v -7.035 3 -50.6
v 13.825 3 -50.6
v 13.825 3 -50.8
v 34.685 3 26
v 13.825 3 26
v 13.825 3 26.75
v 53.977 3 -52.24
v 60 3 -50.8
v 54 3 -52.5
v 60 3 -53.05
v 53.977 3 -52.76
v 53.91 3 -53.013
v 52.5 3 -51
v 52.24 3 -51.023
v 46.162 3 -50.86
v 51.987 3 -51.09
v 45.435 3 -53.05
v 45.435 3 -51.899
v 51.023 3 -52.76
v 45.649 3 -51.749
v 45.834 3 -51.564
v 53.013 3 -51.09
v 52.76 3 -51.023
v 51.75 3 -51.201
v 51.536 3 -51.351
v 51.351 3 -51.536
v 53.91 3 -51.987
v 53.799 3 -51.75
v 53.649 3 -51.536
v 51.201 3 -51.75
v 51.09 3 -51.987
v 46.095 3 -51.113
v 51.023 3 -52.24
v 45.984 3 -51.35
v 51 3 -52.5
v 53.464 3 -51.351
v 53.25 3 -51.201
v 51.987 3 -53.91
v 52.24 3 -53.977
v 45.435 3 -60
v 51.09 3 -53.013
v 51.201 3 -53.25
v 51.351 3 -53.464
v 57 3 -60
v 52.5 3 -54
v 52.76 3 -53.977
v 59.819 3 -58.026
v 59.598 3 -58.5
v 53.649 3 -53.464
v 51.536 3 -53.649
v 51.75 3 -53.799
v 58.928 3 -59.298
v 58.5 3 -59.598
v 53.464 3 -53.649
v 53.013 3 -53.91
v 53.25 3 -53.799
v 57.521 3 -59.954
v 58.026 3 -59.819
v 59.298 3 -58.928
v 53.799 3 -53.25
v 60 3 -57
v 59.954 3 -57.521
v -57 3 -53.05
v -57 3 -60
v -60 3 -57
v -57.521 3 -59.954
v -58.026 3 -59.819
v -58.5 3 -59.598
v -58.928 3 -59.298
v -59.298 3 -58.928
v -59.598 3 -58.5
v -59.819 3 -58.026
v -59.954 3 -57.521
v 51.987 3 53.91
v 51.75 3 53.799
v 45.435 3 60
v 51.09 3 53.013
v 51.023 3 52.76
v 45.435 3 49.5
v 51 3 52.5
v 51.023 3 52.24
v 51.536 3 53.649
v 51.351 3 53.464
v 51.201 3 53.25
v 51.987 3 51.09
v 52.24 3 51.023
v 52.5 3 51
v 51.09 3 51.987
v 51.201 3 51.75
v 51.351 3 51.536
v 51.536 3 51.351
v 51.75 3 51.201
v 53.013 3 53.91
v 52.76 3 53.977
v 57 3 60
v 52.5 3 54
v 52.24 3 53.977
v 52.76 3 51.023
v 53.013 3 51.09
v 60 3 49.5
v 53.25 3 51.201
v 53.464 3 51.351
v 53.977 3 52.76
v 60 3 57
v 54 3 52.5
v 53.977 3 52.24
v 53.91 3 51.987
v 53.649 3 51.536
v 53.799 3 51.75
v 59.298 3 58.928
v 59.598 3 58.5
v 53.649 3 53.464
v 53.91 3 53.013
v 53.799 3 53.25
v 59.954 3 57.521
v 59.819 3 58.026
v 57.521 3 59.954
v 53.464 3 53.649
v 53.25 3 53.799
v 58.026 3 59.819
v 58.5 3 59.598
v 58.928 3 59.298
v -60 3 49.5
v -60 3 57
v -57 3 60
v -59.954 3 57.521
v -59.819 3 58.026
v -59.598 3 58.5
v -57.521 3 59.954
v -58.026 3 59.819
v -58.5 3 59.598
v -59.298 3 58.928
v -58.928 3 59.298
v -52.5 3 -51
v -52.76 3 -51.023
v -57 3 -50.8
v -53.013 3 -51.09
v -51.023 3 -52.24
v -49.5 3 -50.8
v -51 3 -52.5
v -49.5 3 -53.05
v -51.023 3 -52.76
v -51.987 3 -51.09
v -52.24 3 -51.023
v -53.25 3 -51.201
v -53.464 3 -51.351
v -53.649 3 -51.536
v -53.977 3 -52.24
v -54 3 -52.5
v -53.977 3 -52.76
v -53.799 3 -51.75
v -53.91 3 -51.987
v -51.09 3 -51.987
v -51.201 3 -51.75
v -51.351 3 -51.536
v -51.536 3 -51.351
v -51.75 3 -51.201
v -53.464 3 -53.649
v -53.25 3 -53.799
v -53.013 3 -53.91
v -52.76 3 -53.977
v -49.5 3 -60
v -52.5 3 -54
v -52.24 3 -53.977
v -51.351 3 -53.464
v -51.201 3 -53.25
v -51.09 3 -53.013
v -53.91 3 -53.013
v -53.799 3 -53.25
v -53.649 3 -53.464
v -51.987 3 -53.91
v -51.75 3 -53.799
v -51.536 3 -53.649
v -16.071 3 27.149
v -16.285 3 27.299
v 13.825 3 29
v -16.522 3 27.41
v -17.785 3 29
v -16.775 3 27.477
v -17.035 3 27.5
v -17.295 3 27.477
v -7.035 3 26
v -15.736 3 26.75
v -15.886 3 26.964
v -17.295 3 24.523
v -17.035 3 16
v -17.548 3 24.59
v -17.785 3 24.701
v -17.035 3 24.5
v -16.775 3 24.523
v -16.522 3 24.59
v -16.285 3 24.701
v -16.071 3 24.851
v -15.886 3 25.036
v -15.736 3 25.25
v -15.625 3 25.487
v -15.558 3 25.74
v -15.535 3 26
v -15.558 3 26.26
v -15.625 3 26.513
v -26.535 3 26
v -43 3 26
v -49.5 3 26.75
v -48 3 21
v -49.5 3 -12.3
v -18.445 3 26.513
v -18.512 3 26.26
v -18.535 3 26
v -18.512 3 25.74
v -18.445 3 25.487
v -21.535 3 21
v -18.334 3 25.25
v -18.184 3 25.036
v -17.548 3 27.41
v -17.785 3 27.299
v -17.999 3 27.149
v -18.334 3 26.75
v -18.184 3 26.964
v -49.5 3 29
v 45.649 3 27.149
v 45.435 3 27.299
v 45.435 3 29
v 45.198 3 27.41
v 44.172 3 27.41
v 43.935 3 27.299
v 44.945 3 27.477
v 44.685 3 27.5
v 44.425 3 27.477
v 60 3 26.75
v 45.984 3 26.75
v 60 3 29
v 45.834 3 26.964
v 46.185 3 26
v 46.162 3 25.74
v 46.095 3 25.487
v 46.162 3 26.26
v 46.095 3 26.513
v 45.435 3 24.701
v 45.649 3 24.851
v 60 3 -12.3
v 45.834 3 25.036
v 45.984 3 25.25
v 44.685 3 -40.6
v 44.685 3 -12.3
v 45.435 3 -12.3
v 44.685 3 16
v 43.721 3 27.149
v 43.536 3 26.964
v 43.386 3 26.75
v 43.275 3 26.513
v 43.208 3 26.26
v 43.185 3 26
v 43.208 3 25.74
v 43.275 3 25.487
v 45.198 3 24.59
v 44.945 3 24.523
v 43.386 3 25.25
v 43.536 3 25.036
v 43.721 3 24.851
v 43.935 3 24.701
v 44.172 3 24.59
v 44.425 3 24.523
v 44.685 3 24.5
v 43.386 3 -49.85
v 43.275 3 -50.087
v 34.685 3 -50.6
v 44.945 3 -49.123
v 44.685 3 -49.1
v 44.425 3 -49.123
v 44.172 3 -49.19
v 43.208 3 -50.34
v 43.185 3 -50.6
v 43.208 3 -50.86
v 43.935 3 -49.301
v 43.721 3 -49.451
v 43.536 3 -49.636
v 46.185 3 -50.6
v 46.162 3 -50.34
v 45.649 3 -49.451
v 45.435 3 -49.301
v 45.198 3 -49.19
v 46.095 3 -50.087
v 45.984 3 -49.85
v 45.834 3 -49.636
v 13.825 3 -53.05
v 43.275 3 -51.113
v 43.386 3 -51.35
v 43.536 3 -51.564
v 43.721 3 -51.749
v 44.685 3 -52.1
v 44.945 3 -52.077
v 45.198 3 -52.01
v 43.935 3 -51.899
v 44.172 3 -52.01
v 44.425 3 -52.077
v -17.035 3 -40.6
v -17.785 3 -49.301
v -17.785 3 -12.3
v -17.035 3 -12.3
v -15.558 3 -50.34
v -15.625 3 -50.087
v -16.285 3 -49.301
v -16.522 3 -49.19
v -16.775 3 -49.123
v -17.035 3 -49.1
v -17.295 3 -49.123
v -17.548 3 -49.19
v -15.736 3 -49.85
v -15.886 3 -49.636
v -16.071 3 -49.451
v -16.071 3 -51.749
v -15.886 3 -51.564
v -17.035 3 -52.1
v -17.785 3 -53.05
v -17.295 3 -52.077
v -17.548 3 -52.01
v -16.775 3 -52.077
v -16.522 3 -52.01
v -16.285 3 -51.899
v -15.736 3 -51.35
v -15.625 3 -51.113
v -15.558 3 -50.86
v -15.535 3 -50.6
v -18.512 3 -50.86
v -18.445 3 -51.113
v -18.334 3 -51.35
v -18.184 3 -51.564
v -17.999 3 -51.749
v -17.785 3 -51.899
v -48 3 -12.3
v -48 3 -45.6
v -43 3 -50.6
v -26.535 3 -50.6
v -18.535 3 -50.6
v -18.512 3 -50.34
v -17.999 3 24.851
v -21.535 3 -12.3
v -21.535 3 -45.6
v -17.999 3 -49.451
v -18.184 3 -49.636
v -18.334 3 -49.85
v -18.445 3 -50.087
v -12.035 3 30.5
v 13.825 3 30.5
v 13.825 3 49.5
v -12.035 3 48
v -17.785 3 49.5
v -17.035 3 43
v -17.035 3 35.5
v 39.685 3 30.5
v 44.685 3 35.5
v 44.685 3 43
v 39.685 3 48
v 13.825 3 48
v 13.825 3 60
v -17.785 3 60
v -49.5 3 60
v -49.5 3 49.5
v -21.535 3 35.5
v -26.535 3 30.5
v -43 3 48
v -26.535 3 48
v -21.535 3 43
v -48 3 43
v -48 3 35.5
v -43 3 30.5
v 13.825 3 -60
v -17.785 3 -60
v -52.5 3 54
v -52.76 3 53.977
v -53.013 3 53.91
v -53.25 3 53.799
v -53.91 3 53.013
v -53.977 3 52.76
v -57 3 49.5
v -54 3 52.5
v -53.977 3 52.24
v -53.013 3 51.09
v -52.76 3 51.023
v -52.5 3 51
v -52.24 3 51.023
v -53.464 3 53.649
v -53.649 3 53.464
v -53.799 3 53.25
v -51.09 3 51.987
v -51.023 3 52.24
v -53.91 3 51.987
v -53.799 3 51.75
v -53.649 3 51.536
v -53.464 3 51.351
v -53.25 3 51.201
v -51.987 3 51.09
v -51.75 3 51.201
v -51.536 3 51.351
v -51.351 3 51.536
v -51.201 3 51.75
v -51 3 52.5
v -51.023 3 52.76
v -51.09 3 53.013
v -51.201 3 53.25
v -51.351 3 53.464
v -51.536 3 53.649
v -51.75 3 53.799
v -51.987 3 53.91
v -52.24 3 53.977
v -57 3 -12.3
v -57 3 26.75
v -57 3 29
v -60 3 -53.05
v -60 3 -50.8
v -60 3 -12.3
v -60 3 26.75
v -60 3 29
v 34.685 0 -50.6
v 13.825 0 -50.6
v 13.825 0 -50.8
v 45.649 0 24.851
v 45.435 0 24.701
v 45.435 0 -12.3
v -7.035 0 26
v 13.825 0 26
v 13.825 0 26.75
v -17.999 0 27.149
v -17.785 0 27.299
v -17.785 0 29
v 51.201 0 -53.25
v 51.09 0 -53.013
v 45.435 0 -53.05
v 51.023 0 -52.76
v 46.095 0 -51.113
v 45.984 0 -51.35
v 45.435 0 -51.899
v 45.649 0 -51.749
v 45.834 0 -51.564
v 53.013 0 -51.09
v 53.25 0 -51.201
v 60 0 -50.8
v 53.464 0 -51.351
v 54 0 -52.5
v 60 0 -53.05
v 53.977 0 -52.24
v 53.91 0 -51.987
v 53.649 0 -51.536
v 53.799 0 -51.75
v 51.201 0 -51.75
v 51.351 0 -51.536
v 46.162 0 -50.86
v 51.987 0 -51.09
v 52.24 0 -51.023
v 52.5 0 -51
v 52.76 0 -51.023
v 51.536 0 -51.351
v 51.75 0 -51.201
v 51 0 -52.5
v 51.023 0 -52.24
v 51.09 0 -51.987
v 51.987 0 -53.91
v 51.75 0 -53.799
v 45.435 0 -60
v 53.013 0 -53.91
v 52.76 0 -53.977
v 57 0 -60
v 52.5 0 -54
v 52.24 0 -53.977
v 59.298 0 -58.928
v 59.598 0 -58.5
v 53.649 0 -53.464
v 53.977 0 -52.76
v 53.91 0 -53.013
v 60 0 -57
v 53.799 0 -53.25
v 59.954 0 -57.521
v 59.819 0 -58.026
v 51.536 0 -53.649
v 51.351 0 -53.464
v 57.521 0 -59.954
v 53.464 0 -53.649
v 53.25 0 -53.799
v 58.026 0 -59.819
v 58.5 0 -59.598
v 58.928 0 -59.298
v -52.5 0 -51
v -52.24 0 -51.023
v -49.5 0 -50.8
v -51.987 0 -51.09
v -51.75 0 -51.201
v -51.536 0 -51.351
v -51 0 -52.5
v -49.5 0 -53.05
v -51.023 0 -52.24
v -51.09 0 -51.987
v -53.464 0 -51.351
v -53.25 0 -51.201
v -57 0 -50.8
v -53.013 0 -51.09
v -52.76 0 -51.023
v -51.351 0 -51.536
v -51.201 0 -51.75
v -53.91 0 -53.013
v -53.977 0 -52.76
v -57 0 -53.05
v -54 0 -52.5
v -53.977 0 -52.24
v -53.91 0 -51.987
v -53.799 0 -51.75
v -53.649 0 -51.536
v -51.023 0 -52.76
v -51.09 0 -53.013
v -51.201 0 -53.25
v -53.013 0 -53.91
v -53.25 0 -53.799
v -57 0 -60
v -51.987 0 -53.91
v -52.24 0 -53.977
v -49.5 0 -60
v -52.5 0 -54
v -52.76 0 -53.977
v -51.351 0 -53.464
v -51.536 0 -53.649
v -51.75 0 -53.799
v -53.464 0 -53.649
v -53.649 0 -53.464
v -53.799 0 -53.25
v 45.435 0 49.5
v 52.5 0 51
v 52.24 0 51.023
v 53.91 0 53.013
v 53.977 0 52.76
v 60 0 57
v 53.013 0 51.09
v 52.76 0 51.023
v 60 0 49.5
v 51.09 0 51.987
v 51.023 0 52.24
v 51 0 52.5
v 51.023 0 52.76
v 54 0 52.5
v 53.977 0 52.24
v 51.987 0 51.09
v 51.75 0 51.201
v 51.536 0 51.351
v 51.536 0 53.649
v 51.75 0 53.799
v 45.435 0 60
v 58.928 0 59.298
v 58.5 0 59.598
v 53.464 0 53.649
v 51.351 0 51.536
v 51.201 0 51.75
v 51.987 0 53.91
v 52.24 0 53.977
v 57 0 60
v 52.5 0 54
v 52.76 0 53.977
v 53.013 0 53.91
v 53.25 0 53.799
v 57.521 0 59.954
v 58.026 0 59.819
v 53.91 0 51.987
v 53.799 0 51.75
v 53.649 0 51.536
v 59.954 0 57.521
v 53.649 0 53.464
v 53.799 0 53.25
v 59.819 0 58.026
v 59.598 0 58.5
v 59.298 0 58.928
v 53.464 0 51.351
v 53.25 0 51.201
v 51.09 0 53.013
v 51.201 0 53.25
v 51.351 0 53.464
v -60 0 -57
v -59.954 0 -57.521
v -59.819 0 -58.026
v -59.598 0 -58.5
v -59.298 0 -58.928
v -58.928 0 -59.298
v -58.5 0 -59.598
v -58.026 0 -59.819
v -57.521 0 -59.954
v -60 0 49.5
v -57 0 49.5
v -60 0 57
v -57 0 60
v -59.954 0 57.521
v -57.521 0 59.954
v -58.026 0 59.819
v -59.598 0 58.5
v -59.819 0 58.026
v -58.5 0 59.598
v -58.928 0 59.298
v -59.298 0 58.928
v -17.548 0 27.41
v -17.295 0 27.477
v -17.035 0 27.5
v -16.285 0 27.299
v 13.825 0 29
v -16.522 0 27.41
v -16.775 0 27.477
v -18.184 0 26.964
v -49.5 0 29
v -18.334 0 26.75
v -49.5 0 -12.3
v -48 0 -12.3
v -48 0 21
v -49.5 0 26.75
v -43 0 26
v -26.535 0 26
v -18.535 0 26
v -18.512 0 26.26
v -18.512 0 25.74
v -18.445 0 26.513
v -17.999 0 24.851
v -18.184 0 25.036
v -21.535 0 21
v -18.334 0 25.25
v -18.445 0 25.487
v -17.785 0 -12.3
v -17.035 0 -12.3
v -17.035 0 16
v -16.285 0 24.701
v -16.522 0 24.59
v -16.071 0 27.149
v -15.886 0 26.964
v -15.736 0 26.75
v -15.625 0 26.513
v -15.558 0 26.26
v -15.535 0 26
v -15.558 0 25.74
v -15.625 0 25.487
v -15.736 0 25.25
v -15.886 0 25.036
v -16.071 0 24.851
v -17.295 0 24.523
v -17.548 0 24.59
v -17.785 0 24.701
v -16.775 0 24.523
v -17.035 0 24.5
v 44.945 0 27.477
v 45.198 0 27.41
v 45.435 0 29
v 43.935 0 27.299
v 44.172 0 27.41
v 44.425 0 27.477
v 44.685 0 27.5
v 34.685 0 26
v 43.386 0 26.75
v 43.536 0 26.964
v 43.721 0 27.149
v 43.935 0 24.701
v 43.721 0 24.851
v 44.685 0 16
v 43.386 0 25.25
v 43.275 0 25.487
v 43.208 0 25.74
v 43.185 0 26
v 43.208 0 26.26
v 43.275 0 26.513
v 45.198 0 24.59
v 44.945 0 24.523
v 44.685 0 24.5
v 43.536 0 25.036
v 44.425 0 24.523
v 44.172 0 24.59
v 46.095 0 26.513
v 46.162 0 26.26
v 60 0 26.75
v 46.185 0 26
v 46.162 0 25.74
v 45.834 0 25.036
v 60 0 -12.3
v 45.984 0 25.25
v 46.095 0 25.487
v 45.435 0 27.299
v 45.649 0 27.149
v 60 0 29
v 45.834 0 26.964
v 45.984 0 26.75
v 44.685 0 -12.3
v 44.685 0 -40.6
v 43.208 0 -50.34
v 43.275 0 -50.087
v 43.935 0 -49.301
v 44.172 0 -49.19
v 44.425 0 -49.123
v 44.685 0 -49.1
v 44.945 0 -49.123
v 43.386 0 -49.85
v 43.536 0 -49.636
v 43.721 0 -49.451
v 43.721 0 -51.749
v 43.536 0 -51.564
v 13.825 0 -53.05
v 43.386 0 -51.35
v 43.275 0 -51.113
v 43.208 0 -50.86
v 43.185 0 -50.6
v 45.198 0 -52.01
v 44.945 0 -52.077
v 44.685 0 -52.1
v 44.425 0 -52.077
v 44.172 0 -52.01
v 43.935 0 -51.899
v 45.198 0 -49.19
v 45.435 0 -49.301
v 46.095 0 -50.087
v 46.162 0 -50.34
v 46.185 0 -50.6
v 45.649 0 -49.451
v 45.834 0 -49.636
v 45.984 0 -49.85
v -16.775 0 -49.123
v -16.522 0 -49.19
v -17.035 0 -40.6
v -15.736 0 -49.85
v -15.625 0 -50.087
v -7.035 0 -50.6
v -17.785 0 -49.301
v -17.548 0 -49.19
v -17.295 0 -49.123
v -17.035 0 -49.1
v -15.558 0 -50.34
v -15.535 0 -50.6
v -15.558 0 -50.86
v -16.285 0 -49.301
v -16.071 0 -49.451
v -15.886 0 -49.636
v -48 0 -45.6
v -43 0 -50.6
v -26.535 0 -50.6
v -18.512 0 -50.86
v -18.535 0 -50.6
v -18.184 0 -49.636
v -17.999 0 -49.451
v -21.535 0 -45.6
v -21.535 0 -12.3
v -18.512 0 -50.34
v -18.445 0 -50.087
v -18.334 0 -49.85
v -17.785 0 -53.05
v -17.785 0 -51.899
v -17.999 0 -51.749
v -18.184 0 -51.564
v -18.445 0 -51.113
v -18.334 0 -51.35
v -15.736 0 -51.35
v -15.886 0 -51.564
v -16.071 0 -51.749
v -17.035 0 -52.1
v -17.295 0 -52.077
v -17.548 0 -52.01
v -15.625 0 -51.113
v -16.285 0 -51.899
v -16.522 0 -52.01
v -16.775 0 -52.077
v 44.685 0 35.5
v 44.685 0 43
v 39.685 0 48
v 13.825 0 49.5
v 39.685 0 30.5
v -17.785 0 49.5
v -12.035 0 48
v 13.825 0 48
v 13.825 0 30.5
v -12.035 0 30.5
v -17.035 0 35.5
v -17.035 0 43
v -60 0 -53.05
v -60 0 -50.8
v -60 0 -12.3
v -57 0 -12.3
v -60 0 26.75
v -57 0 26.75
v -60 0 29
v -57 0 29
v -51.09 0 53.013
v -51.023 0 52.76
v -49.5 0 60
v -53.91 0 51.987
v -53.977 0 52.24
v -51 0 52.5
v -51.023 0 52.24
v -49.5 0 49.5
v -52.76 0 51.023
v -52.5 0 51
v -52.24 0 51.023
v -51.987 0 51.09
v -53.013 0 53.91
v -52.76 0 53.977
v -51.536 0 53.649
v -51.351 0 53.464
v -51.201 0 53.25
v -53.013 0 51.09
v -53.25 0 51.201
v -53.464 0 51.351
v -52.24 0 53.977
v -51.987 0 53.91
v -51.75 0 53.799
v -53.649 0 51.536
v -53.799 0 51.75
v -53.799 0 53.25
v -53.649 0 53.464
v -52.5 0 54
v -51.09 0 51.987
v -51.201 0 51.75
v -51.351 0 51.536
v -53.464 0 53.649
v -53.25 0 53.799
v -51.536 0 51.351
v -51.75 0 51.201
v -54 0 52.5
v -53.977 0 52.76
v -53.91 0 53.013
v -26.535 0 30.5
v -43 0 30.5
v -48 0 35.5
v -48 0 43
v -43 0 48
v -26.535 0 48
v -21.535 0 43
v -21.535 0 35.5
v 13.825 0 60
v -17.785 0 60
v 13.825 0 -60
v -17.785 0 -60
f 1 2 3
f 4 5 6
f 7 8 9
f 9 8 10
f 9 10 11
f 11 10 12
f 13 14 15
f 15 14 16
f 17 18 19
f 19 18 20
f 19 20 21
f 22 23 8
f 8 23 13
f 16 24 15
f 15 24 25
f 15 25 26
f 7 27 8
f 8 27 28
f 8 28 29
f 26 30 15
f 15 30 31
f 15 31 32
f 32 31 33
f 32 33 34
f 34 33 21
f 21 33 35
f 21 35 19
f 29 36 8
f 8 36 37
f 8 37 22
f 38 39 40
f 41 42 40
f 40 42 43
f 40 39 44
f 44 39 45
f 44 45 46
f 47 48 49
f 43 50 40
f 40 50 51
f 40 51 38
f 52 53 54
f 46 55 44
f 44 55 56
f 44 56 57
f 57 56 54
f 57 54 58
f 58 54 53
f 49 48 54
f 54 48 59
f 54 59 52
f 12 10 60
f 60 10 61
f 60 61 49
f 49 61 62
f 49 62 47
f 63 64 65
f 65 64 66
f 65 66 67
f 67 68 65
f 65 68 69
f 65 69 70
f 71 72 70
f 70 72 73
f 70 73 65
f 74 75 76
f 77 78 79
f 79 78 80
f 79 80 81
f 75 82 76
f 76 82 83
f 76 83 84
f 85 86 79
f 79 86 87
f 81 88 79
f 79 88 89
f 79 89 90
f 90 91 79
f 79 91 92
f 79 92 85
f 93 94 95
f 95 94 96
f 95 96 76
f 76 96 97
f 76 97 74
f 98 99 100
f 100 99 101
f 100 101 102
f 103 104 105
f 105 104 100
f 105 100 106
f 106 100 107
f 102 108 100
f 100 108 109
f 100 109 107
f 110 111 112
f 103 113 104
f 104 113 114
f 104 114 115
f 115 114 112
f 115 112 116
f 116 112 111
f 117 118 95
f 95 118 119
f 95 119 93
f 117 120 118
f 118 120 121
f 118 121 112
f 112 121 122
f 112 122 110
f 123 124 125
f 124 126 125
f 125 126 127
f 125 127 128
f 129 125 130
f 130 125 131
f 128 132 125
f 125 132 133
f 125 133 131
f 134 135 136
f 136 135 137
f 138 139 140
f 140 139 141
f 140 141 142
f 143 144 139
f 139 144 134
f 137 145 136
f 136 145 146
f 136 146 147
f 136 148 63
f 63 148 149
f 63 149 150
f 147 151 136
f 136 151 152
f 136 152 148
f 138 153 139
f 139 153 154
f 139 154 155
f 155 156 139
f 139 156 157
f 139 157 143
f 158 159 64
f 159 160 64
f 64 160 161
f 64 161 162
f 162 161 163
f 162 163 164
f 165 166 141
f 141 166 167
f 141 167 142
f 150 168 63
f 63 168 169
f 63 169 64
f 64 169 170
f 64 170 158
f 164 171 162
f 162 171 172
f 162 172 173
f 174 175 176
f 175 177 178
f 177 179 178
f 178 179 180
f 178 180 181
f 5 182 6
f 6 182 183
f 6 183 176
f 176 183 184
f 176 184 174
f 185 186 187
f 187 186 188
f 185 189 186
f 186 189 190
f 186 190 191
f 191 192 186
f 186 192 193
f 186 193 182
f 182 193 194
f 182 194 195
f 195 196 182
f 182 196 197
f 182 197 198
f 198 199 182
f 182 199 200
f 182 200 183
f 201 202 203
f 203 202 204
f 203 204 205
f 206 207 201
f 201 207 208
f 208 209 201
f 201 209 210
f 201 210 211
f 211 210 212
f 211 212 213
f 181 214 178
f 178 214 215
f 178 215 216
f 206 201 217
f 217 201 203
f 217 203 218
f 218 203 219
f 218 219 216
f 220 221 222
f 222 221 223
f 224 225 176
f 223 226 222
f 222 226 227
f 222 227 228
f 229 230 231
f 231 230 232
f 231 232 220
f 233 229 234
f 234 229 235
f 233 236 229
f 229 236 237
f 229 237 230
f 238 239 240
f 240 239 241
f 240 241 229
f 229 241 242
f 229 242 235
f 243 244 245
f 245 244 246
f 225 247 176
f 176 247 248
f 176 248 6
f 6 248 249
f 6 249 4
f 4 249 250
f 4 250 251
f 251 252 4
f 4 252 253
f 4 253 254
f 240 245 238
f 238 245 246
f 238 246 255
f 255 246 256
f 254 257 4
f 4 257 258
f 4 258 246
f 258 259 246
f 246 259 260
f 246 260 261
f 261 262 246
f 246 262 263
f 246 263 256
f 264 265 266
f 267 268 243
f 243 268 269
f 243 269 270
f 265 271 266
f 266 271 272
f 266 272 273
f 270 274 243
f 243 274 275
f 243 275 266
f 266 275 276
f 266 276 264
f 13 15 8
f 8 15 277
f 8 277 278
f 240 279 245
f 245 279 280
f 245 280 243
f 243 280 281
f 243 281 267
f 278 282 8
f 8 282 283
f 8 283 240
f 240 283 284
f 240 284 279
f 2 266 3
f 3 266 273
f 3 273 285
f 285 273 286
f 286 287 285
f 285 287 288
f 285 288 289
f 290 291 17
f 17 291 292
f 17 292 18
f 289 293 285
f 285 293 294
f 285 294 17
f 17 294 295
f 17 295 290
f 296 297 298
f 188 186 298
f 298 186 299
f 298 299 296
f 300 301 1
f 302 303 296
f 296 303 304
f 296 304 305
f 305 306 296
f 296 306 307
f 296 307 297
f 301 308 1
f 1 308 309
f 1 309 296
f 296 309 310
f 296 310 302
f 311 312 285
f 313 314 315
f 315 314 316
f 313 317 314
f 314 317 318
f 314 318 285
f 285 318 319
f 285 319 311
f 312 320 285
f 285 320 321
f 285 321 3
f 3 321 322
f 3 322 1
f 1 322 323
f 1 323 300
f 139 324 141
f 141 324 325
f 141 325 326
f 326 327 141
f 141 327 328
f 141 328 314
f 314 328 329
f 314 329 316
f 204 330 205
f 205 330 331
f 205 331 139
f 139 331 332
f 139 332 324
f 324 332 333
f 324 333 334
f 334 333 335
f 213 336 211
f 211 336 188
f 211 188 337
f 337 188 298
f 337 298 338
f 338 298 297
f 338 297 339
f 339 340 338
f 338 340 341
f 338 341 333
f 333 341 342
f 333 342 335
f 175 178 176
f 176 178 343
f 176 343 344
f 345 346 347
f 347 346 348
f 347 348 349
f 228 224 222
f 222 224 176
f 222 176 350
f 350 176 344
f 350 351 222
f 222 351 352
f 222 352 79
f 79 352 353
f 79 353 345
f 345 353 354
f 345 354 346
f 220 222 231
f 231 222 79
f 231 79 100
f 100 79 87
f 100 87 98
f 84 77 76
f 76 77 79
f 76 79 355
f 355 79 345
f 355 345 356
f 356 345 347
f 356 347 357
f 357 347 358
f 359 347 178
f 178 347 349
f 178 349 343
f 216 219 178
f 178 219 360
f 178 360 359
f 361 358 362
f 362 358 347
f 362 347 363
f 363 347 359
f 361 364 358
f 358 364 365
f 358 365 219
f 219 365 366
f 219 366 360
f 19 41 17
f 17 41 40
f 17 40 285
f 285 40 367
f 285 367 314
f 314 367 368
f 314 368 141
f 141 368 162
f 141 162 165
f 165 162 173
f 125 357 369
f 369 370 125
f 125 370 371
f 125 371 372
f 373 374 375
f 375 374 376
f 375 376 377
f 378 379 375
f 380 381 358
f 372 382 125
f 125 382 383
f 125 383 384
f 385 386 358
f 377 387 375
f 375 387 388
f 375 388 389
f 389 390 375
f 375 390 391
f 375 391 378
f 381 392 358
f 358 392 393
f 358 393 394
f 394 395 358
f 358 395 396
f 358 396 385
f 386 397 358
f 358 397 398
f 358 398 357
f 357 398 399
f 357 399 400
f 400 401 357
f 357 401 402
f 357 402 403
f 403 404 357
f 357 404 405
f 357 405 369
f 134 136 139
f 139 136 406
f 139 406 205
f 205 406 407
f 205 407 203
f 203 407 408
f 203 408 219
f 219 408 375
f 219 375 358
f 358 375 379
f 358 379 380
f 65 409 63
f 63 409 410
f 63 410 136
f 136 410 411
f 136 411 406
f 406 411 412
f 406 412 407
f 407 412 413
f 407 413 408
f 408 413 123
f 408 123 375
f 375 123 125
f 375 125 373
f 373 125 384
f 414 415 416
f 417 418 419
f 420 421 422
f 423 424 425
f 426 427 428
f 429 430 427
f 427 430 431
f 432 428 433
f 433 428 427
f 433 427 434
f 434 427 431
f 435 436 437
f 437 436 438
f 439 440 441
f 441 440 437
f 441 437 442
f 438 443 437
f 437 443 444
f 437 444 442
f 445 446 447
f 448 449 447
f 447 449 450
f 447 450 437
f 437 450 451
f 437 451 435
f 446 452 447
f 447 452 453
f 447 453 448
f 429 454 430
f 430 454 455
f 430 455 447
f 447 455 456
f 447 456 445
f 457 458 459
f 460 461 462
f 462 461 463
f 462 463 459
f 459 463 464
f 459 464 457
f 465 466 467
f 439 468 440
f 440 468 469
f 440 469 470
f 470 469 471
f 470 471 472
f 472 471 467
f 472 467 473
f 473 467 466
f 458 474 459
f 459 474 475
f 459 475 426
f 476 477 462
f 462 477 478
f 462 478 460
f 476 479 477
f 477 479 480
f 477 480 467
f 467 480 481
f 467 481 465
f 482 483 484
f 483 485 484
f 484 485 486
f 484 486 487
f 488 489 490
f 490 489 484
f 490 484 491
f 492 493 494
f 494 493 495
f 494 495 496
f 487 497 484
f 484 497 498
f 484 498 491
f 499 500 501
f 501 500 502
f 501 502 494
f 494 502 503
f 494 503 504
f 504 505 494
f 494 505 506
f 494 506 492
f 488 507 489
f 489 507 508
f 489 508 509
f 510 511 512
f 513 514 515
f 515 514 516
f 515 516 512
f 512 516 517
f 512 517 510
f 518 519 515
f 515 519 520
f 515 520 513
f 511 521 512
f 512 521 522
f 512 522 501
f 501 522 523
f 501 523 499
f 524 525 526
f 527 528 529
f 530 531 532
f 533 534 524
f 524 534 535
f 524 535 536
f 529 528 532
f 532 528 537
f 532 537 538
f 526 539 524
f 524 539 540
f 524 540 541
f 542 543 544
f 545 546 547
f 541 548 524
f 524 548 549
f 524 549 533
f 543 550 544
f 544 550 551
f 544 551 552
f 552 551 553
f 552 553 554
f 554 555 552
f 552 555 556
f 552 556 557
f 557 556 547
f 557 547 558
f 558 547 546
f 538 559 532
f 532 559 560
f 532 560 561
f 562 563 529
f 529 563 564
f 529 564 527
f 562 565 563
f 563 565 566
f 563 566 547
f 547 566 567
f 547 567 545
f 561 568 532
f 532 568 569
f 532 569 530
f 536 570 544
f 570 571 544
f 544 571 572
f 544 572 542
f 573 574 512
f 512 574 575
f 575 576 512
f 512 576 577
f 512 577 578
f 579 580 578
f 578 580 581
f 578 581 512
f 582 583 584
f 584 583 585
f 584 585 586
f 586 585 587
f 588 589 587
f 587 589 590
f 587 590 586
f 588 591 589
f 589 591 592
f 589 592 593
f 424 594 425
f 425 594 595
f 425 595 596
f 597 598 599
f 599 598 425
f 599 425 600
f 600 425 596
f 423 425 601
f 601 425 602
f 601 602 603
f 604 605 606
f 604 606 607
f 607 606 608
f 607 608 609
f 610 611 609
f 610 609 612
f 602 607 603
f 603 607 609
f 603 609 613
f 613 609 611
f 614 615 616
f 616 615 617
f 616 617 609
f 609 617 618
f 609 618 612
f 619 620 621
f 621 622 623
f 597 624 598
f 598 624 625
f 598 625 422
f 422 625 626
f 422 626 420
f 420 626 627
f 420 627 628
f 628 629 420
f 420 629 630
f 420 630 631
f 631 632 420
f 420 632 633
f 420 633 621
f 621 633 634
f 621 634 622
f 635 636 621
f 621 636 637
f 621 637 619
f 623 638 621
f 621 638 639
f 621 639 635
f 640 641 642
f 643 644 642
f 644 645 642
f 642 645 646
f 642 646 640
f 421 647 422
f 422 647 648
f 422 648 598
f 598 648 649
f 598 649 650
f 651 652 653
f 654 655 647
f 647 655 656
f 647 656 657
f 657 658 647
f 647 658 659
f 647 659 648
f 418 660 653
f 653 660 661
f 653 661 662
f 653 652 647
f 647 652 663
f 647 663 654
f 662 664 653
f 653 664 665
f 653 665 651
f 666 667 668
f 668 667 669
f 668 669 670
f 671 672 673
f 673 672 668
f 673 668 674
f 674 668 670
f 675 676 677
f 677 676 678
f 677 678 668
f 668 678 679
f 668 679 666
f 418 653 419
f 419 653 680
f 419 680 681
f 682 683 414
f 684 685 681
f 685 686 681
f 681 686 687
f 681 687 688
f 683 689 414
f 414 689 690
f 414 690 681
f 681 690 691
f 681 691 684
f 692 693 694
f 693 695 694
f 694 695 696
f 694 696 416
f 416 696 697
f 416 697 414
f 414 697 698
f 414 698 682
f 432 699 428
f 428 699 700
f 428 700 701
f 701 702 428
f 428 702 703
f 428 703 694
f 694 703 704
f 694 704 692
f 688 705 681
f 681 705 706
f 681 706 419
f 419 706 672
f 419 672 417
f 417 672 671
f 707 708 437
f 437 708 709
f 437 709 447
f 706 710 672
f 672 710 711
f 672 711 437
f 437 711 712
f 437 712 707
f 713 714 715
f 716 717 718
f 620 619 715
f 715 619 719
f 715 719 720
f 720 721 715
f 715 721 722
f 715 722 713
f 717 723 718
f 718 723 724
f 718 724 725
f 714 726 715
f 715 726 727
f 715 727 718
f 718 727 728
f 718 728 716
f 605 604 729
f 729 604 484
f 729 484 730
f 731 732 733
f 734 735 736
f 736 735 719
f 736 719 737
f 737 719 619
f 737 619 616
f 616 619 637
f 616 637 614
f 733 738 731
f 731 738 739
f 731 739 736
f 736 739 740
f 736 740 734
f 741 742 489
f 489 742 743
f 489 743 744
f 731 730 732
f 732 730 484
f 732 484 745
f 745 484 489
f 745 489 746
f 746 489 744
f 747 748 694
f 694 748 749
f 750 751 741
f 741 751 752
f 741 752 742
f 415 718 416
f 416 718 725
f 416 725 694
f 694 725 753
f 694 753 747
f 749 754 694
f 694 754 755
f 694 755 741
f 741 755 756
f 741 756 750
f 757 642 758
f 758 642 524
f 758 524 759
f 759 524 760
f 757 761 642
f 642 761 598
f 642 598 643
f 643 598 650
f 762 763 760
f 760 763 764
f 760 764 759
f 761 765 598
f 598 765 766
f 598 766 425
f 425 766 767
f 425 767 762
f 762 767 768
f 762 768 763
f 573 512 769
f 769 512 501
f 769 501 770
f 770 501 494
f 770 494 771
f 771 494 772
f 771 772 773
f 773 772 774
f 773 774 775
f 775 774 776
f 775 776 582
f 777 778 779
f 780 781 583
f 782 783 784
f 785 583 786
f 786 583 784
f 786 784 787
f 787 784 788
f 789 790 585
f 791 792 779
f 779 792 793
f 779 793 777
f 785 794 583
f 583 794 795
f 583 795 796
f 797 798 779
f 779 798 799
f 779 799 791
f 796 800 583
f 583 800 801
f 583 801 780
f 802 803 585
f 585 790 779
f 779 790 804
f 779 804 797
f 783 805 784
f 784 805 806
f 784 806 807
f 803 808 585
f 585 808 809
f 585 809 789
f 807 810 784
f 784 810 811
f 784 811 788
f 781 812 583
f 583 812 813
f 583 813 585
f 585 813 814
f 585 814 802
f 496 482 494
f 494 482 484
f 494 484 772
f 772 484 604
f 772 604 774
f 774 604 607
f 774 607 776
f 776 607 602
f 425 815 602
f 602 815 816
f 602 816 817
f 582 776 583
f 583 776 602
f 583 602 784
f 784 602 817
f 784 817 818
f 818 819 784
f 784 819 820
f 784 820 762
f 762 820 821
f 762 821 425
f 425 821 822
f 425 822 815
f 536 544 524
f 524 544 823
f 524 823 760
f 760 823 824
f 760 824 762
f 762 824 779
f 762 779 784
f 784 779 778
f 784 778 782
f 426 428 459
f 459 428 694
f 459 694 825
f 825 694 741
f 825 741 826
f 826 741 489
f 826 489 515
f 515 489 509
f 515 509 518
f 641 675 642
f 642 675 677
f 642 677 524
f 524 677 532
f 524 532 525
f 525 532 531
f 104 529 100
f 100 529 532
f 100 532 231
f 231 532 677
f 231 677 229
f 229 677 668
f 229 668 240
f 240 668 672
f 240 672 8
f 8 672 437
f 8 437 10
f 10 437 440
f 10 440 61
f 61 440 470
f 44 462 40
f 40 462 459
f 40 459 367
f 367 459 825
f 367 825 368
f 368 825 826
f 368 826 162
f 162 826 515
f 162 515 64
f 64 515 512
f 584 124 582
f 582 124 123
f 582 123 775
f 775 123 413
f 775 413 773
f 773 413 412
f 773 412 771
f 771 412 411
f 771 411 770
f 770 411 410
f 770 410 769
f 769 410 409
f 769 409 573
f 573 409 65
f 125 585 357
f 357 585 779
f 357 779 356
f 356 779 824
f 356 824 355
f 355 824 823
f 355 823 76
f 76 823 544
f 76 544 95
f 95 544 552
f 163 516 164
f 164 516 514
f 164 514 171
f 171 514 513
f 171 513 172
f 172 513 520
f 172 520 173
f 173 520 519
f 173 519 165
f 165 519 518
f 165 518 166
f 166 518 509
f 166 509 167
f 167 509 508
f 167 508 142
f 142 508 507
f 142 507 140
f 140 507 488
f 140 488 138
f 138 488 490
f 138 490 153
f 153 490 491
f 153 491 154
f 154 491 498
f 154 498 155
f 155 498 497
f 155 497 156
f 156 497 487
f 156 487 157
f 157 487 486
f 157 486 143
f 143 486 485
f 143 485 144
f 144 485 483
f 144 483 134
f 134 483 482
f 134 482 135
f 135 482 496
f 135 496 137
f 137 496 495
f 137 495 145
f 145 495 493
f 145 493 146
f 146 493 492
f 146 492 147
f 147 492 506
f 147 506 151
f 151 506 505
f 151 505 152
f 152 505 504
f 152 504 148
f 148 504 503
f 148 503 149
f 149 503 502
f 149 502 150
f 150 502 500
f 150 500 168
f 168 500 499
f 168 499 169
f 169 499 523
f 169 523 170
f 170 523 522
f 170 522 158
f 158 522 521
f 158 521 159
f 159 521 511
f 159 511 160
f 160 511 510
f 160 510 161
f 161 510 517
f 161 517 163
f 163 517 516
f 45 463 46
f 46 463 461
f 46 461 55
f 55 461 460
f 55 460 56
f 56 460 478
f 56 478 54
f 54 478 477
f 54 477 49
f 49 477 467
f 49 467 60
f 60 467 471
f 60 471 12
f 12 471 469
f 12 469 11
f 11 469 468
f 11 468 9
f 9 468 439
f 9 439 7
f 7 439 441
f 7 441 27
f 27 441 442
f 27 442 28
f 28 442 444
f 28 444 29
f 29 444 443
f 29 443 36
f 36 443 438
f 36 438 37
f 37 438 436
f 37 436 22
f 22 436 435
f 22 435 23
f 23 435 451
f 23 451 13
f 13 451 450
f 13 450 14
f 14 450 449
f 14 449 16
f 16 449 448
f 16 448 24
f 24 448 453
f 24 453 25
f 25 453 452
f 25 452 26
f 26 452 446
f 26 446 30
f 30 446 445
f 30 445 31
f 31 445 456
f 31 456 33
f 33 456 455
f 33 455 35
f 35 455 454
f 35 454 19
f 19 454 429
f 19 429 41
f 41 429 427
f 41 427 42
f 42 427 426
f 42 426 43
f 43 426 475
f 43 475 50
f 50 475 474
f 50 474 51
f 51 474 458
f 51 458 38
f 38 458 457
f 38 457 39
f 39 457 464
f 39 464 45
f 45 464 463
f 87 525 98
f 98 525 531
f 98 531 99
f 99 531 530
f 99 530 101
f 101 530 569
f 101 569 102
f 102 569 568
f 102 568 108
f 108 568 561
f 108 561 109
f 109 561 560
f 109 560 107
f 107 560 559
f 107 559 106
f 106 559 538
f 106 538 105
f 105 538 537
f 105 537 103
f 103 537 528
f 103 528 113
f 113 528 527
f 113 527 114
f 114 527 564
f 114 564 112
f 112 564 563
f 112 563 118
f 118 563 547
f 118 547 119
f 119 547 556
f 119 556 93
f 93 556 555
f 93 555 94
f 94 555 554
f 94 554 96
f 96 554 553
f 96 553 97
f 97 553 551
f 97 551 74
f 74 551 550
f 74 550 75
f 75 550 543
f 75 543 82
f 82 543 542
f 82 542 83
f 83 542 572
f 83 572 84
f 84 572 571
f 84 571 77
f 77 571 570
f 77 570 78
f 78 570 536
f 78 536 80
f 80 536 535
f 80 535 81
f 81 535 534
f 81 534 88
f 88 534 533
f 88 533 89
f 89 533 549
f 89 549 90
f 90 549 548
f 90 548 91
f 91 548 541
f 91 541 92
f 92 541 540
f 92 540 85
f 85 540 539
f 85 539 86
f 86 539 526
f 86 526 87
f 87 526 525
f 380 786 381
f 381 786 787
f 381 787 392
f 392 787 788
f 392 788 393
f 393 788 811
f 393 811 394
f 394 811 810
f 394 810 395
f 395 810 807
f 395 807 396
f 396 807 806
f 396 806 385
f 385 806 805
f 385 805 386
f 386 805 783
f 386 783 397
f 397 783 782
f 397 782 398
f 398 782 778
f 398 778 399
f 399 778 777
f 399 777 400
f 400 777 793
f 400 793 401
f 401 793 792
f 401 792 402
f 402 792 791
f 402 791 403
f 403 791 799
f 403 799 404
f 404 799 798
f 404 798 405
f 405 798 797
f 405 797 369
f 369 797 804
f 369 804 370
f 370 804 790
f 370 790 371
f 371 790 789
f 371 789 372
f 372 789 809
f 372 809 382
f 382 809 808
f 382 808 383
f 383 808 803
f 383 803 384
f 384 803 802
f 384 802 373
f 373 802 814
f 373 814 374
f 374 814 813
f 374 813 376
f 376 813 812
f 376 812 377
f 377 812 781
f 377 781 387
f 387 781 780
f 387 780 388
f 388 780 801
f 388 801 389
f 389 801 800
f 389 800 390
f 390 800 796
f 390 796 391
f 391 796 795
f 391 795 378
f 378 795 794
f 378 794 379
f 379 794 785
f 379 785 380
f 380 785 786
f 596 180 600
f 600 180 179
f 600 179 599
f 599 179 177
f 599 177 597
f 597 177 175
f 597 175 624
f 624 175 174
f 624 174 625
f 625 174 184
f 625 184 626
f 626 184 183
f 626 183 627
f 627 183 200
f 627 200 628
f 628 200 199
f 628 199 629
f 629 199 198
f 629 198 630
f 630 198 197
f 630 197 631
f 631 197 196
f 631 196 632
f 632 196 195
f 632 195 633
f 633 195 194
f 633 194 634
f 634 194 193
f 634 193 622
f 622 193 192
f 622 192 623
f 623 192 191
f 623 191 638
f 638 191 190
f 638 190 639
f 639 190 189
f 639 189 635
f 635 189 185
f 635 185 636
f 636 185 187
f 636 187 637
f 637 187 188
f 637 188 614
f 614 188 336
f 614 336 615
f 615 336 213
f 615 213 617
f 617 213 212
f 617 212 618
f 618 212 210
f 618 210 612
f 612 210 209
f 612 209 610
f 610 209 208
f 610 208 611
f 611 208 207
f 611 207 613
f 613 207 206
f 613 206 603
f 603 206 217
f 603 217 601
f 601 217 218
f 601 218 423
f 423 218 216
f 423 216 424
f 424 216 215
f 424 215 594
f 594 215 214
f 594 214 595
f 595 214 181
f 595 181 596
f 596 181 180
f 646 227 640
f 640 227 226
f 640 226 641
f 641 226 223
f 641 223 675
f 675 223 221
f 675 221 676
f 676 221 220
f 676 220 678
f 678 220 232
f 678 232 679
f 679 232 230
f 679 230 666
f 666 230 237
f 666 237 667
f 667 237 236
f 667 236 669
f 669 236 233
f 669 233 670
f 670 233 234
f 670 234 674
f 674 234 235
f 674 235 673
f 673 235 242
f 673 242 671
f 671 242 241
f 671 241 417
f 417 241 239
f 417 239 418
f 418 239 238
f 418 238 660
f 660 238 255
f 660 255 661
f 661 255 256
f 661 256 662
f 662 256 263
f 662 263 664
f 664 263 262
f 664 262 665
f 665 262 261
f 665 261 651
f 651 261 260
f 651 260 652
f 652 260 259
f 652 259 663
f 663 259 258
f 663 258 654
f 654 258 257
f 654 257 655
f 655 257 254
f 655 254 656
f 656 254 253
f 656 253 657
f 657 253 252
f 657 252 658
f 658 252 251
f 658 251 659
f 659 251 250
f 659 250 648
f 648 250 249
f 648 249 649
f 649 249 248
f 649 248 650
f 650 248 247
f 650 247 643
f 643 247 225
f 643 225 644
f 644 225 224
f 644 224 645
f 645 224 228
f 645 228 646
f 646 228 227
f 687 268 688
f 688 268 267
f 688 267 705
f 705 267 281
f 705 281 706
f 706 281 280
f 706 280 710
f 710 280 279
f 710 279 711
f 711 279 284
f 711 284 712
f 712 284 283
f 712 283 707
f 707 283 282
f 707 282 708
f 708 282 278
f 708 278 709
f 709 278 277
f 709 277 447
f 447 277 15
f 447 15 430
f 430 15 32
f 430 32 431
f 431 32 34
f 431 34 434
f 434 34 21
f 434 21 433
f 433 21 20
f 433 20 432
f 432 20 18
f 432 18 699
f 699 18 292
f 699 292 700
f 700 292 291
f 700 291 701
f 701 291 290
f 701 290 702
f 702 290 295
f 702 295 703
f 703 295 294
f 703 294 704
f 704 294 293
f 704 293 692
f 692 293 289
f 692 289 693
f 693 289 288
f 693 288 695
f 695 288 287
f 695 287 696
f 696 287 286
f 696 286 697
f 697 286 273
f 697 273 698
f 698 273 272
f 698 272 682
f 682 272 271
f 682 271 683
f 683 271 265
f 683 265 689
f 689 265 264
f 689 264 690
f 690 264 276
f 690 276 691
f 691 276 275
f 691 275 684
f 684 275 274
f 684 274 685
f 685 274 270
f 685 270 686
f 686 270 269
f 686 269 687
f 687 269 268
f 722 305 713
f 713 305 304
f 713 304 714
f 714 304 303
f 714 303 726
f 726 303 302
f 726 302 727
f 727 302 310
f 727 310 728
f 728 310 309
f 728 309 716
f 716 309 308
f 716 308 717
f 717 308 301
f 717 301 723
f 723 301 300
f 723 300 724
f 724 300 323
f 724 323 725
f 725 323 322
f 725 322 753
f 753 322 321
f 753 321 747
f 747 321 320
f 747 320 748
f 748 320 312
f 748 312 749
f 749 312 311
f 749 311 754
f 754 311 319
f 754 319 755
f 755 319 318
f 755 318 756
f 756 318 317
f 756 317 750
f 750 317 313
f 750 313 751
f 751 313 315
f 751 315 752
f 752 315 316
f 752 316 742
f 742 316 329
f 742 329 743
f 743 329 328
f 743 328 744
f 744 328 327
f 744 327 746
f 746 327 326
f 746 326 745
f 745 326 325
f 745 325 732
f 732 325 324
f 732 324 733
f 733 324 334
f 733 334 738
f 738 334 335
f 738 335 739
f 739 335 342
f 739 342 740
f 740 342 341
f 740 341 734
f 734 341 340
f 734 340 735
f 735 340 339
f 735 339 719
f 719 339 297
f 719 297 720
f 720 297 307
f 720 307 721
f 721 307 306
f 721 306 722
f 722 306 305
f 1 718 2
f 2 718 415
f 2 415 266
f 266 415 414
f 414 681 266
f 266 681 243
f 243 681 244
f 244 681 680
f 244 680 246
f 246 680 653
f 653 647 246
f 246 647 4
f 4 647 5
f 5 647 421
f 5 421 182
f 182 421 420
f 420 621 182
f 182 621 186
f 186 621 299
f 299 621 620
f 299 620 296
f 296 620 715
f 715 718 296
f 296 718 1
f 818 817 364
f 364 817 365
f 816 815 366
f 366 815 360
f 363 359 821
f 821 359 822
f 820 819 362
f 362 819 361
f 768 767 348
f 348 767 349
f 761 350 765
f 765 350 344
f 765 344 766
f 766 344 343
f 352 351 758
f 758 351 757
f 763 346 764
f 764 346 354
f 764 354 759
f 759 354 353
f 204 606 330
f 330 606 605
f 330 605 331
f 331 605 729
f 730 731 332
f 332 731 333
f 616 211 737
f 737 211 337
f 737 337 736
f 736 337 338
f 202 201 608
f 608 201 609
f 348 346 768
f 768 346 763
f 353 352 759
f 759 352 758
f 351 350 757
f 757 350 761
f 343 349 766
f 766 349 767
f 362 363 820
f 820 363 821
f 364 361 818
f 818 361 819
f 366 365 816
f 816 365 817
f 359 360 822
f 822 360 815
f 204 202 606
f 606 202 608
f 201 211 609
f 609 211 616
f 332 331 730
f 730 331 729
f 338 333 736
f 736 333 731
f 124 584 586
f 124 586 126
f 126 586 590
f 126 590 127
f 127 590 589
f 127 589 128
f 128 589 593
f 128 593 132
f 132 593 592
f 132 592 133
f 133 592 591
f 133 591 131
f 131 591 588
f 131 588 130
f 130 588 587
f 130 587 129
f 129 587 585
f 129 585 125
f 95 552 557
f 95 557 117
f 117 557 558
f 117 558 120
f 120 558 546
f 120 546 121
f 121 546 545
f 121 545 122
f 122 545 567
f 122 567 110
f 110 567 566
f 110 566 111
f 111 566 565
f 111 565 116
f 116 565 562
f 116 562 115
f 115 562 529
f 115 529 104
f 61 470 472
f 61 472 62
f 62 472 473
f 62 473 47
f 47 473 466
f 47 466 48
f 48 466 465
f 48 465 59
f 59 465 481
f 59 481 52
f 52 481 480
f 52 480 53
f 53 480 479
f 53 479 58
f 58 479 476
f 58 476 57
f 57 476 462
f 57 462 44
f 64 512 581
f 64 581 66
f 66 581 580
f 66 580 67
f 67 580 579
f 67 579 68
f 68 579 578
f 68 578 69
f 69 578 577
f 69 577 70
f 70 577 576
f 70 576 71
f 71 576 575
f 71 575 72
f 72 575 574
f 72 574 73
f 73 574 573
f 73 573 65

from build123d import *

# Parameters (mm, degrees)
SKETCH_1_R      = 1.5
EXTRUDE_1_DEPTH = 3


with BuildPart() as part:
    # 草圖1 → 填料-伸長1 (new body)
    with BuildSketch(Plane(origin=(0, 3, 0), x_dir=(1, 0, 0), z_dir=(0, 1, 0))):
        with BuildLine():
            Line((-60, 57), (-60, -57))
            ThreePointArc((-60, -57), (-59.121320344, -59.121320344), (-57, -60))
            Line((-57, -60), (57, -60))
            ThreePointArc((57, -60), (59.121320344, -59.121320344), (60, -57))
            Line((60, -57), (60, 57))
            ThreePointArc((60, 57), (59.121320344, 59.121320344), (57, 60))
            Line((57, 60), (-57, 60))
            ThreePointArc((-57, 60), (-59.121320344, 59.121320344), (-60, 57))
        make_face()
        with Locations((-17.035, 50.6)):
            Circle(SKETCH_1_R, mode=Mode.SUBTRACT)
        with Locations((44.685, 50.6)):
            Circle(SKETCH_1_R, mode=Mode.SUBTRACT)
        with Locations((44.685, -26)):
            Circle(SKETCH_1_R, mode=Mode.SUBTRACT)
        with Locations((-17.035, -26)):
            Circle(SKETCH_1_R, mode=Mode.SUBTRACT)
        with Locations((52.5, -52.5)):
            Circle(SKETCH_1_R, mode=Mode.SUBTRACT)
        with Locations((-52.5, 52.5)):
            Circle(SKETCH_1_R, mode=Mode.SUBTRACT)
        with Locations((52.5, 52.5)):
            Circle(SKETCH_1_R, mode=Mode.SUBTRACT)
        with Locations((-52.5, -52.5)):
            Circle(SKETCH_1_R, mode=Mode.SUBTRACT)
        Polygon((-48, -21), (-48, 45.6), (-43, 50.6), (-26.535, 50.6), (-21.535, 45.6), (-21.535, -21), (-26.535, -26), (-43, -26), align=None, mode=Mode.SUBTRACT)
        Polygon((-17.035, -43), (-17.035, -35.5), (-12.035, -30.5), (39.685, -30.5), (44.685, -35.5), (44.685, -43), (39.685, -48), (-12.035, -48), align=None, mode=Mode.SUBTRACT)
        Polygon((-48, -43), (-48, -35.5), (-43, -30.5), (-26.535, -30.5), (-21.535, -35.5), (-21.535, -43), (-26.535, -48), (-43, -48), align=None, mode=Mode.SUBTRACT)
        Polygon((-7.035, 50.6), (34.685, 50.6), (44.685, 40.6), (44.685, -16), (34.685, -26), (-7.035, -26), (-17.035, -16), (-17.035, 40.6), align=None, mode=Mode.SUBTRACT)
    extrude(amount=-EXTRUDE_1_DEPTH)


solid = part.part
